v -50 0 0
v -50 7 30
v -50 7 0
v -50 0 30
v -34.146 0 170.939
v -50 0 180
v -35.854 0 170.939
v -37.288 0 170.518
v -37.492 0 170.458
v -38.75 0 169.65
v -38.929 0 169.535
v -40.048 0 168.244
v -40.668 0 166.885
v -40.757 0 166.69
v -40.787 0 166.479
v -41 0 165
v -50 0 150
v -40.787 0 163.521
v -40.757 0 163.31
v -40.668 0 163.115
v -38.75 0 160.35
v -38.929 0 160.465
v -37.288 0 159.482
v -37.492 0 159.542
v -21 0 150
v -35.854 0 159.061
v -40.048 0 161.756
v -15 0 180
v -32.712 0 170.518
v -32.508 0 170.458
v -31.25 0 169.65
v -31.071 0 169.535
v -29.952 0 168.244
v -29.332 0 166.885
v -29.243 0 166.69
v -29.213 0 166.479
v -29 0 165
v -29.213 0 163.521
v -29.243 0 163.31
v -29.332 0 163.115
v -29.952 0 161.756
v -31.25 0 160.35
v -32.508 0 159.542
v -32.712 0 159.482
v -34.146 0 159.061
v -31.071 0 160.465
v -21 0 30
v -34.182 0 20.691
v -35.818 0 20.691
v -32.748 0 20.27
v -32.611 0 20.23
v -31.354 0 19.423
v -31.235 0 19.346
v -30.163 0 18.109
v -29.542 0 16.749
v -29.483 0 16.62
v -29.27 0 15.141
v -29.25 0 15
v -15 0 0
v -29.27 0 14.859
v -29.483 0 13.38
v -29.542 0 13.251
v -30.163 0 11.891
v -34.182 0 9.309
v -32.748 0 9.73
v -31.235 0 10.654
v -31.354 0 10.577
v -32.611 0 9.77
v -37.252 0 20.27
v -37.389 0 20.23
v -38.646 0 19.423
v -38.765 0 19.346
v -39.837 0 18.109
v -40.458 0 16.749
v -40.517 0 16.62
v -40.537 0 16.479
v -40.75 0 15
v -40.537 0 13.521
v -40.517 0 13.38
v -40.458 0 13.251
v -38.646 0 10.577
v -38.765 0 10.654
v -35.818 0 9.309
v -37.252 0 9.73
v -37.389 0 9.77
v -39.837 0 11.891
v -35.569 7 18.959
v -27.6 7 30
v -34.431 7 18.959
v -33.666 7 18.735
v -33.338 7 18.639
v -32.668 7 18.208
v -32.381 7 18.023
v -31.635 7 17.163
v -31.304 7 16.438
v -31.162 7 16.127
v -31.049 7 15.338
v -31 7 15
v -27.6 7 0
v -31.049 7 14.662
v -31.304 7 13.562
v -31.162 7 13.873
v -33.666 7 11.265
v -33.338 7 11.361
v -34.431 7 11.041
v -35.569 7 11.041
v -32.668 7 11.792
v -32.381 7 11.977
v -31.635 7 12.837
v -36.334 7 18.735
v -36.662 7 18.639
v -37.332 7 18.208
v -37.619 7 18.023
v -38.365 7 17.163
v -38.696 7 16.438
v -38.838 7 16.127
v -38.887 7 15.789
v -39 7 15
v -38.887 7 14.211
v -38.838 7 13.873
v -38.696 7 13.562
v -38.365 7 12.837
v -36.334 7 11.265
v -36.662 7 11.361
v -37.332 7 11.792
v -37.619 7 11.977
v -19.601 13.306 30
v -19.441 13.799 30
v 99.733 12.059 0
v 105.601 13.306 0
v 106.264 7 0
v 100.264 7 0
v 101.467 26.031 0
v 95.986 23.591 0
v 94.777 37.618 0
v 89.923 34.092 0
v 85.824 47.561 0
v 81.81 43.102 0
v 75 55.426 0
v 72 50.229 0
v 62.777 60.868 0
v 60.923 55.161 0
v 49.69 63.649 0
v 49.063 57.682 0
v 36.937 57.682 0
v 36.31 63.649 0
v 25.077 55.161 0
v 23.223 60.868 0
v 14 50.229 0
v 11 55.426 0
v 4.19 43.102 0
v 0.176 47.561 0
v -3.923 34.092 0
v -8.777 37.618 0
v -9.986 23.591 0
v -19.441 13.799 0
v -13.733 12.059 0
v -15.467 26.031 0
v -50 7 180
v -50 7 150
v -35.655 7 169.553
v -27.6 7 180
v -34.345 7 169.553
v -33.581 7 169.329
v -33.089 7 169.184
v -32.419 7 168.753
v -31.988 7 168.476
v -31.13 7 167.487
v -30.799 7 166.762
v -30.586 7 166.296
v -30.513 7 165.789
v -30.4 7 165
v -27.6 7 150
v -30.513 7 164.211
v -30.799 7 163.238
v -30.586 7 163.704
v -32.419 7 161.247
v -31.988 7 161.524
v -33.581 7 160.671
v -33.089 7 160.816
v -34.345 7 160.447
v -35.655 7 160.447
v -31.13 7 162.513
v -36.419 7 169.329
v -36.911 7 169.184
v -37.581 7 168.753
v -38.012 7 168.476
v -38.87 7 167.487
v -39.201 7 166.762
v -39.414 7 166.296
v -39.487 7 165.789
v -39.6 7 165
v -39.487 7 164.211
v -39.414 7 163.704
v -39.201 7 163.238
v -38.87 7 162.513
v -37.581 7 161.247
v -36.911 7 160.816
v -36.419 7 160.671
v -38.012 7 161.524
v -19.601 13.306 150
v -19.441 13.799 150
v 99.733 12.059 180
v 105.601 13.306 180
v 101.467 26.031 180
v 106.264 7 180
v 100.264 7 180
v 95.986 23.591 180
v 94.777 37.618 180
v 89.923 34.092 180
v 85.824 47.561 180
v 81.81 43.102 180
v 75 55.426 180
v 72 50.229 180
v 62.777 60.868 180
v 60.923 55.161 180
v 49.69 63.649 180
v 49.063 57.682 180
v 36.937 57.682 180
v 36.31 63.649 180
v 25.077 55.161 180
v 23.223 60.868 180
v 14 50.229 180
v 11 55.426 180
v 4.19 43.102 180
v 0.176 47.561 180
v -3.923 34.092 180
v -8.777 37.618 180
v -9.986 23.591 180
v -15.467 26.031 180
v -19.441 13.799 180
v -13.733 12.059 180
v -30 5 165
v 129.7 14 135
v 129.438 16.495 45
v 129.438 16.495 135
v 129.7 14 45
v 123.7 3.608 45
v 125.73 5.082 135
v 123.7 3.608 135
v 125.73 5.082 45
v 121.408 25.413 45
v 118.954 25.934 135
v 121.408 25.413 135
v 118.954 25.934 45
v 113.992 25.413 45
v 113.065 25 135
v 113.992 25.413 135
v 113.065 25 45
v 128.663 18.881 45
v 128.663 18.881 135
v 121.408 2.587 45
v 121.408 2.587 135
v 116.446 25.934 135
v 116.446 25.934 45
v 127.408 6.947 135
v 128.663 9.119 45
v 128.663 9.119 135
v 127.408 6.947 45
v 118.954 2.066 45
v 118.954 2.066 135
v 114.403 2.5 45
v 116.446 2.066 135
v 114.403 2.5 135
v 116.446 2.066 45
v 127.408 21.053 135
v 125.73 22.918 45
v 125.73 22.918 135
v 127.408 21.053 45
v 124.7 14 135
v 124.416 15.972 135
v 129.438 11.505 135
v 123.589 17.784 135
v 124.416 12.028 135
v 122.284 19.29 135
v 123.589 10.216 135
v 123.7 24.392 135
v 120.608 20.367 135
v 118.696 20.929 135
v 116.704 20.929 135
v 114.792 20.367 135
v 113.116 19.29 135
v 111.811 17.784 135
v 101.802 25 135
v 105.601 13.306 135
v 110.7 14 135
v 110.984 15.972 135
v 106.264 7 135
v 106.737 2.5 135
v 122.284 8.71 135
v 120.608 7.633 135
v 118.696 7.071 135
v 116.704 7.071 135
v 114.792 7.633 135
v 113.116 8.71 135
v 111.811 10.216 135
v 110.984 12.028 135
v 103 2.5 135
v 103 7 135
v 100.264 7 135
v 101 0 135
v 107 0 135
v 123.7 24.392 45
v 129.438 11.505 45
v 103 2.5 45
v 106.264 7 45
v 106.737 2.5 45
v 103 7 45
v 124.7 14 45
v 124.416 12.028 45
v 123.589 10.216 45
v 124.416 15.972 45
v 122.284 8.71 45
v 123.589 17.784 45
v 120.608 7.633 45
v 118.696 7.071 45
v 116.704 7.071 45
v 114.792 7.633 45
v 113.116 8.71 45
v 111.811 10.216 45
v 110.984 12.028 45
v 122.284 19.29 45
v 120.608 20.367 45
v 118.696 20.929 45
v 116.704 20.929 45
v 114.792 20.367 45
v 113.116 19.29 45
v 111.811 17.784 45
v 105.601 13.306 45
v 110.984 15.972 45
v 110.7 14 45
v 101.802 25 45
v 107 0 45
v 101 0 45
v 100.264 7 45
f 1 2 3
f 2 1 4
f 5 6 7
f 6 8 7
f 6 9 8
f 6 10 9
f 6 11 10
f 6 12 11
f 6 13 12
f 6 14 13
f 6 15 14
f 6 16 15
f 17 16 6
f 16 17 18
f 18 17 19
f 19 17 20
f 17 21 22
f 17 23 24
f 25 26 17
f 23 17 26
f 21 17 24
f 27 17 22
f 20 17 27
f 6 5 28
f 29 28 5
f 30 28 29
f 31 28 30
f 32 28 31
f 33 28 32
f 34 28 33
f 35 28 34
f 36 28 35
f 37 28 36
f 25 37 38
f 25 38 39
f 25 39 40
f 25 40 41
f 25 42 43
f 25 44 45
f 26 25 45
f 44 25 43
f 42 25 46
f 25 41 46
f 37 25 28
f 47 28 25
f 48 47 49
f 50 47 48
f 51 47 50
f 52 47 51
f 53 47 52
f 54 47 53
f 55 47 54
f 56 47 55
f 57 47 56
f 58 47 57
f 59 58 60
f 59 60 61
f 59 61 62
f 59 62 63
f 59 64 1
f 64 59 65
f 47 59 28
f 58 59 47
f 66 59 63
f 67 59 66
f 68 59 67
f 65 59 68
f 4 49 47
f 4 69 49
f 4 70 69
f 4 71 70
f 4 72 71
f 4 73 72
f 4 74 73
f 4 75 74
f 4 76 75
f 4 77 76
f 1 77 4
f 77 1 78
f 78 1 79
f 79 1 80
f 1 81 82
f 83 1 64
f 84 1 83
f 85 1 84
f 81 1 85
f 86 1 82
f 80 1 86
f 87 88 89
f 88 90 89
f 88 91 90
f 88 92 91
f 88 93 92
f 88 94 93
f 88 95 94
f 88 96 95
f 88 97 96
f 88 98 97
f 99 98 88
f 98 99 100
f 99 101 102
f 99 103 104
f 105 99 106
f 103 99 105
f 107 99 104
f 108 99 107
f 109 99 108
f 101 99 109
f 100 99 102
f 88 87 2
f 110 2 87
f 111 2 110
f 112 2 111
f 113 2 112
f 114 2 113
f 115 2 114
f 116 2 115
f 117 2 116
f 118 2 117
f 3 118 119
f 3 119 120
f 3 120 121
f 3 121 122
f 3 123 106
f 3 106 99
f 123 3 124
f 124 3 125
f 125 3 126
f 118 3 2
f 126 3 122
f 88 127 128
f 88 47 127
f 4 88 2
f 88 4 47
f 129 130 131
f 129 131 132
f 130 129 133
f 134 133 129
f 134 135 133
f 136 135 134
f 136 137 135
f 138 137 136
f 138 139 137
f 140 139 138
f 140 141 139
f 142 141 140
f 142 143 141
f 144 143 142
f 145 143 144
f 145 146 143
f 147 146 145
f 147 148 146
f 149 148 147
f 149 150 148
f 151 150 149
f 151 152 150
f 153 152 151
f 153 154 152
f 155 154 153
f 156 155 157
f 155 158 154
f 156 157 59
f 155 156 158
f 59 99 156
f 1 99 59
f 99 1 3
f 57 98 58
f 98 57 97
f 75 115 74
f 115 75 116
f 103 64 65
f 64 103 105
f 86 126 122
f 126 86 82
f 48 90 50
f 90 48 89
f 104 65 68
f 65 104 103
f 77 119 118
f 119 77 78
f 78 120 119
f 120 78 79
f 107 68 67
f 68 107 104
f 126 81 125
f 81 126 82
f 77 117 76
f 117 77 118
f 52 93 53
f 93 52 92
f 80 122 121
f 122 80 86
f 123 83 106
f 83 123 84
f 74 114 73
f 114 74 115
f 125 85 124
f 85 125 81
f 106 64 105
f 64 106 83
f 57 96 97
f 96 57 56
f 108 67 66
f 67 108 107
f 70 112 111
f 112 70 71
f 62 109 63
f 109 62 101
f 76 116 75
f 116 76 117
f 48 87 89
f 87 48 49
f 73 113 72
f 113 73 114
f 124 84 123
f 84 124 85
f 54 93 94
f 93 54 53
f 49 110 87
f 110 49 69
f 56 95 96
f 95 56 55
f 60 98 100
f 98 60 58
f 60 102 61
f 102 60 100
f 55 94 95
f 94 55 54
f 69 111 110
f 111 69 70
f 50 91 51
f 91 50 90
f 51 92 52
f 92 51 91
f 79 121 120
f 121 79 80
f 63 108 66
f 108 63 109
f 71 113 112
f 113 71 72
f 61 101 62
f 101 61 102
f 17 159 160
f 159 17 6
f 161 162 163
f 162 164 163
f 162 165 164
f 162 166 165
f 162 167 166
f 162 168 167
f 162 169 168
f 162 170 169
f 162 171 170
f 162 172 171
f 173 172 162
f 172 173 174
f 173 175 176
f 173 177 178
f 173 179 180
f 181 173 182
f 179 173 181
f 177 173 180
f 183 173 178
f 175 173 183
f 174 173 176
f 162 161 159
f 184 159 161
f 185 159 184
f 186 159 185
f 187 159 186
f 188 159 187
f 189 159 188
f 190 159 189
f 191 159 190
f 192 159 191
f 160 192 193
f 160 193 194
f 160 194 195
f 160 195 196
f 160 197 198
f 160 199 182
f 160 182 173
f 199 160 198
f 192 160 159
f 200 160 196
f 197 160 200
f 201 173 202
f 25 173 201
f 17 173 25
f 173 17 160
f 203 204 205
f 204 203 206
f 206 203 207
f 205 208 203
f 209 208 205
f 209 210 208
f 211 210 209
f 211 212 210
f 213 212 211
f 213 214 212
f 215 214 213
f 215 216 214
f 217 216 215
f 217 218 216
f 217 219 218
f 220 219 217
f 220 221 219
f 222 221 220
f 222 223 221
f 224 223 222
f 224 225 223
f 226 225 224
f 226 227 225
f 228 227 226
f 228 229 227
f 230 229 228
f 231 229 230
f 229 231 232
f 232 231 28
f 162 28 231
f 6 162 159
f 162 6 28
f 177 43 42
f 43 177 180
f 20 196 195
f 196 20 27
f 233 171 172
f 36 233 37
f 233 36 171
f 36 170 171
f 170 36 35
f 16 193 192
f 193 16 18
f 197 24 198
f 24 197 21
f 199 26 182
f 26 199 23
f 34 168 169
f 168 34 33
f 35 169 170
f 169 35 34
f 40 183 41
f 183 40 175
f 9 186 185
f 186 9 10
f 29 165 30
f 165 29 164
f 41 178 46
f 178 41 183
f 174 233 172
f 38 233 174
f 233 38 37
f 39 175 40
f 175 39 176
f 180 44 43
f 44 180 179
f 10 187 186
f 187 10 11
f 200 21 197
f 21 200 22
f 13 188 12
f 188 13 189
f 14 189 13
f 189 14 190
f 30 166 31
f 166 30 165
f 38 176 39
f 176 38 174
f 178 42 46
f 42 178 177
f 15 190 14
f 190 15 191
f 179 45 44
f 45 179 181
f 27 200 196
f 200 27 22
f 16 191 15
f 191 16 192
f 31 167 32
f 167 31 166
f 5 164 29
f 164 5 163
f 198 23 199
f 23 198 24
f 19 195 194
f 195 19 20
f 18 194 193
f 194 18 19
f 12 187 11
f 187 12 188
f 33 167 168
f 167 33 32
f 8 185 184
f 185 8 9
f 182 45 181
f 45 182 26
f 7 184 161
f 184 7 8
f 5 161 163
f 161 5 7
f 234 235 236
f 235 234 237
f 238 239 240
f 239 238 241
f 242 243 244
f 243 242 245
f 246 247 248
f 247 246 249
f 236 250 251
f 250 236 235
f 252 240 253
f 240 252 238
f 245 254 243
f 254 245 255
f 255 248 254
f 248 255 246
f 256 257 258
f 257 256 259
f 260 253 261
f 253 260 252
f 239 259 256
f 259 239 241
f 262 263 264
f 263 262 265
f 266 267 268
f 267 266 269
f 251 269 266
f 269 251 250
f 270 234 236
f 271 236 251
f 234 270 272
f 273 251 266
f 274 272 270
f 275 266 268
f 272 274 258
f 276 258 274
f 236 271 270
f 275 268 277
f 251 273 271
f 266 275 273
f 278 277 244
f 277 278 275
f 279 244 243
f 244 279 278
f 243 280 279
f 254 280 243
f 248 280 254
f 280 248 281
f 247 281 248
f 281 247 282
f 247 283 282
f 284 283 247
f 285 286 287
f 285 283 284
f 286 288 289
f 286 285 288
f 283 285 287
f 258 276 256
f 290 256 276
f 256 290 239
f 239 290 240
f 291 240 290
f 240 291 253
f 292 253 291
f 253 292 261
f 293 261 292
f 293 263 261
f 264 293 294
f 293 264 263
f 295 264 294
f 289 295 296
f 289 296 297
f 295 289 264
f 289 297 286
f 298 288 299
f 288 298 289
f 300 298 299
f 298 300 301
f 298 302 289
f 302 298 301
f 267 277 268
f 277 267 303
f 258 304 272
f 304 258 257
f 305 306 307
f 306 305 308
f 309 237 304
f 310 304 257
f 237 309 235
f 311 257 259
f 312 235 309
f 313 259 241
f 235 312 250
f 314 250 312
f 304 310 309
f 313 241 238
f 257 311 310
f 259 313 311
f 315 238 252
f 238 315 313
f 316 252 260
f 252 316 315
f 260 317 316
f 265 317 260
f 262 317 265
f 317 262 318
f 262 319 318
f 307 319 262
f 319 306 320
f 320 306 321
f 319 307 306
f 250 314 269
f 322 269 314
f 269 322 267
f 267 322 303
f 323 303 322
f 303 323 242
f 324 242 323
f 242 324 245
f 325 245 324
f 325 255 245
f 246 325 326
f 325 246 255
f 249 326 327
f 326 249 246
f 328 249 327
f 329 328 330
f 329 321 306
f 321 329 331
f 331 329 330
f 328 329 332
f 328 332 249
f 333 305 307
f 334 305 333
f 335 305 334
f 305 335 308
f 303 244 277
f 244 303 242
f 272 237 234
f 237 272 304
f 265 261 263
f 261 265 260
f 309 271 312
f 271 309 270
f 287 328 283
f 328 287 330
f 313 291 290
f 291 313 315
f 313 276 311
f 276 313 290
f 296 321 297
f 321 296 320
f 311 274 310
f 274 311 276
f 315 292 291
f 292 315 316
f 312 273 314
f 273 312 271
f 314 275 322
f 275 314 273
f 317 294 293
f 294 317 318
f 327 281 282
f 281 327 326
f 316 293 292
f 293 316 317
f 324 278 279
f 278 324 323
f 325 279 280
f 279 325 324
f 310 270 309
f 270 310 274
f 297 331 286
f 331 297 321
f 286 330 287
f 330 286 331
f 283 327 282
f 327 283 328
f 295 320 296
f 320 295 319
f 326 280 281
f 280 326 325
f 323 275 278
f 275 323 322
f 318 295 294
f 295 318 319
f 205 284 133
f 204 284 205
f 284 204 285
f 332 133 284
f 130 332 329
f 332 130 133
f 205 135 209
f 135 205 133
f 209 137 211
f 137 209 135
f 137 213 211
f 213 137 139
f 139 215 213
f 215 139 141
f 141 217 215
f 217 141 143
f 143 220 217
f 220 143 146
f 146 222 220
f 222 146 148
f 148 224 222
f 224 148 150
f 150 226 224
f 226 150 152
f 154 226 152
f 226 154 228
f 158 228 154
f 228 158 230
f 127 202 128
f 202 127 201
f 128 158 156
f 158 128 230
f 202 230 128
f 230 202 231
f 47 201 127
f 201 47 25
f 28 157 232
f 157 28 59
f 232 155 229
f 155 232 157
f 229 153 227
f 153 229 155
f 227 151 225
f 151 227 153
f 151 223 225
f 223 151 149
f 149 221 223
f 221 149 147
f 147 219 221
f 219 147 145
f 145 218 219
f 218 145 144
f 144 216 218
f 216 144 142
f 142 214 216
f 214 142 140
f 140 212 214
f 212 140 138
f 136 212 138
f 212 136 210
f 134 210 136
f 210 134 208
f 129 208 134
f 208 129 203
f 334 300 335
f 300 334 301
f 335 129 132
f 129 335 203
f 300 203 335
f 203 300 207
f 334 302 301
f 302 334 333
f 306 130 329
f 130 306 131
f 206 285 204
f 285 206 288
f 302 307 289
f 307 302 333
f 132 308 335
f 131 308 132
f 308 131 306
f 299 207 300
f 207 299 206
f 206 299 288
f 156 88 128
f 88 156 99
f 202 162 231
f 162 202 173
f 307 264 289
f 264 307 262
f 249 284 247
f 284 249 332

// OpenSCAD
use <MCAD/2Dshapes.scad>;

module prism(l, w, h)
{
    polyhedron(points=[[0,0,0], [0,w,h], [l,w,h], [l,0,0], [0,w,0], [l,w,0]],
               // top sloping face (A)
               faces=[[0,1,2,3],
               // vertical rectangular face (B)
               [2,1,4,5],
               // bottom face (C)
               [0,3,5,4],
               // rear triangular face (D)
               [0,4,1],
               // front triangular face (E)
               [3,2,5]]
               );
}



//cover body
//translate([43,0]) linear_extrude(180) donutSlice(innerSize=58, outerSize=64, start_angle=0, end_angle=180);
difference() {
difference() 
{   translate([43,0]) linear_extrude(180) donutSlice(innerSize=58, outerSize=64, start_angle=0, end_angle=180);
    translate ([115,0,45]) rotate ([0,90,90])cube ([90,30,7]);
}
translate ([115,0,225]) rotate ([0,90,90]) cube ([90,30,7]); 
}



//test component
/*difference() {translate([43,0]) linear_extrude(60) donutSlice(innerSize=58, outerSize=64, start_angle=0, end_angle=180);
translate ([115,0,30]) rotate ([0,90,90])cube ([90,15,7]);}*/

//right side fastening flanges    
difference() 
{
    translate([-50,7, 0])rotate ([90,0]) cube([30,30,7]);
    translate ([-35,15, 15])rotate ([90,0]) cylinder(20, 2,7);
}
translate ([-30,5,0]) rotate ([270,270,0]) prism (30,12,10);

difference () 
{
    translate([-50,7,150])rotate ([90,0]) cube([30,30,7]);
    translate ([-35,15, 165])rotate ([90,0]) cylinder(20, 3,7);
}
translate ([-30,5,150]) rotate ([270,270,0]) prism (30,12,10);

//left side fastening flanges
/*difference () 
{
    translate([106,7])rotate ([90,0]) cube([30,30,7]);
    translate ([120,15, 15])rotate ([90,0]) cylinder(20, 3,7);
}

difference ()
{
    translate([106,7,150])rotate ([90,0]) cube([30,30,7]);
    translate ([120,15, 165])rotate ([90,0]) cylinder(20, 3,7);
}
*/

//hinge hole
difference() {translate ([117.7,14,45]) cylinder(90, 12,12); translate ([117.7,14,-10]) cylinder(200, 7,7);}
//test
//difference() {translate ([117.7,14,30]) cylinder(30, 12,12); translate ([117.7,14,-10]) cylinder(200, 7,7);}

//hinge brace assembly
translate ([102,10,45]) rotate ([90,0,90]) cube([8,90,8],0);
translate ([115,2.5,135]) rotate ([0,90, 90]) prism (90,12,16);
translate ([100,13,135]) rotate ([90,90, 90]) prism (90,12,16);

/*
//test
translate ([102,10,30]) rotate ([90,0,90]) cube([8,30,8],0);
translate ([115,2.5,60]) rotate ([0,90, 90]) prism (30,12,16);
translate ([100,13,60]) rotate ([90,90, 90]) prism (30,12,16);*/
